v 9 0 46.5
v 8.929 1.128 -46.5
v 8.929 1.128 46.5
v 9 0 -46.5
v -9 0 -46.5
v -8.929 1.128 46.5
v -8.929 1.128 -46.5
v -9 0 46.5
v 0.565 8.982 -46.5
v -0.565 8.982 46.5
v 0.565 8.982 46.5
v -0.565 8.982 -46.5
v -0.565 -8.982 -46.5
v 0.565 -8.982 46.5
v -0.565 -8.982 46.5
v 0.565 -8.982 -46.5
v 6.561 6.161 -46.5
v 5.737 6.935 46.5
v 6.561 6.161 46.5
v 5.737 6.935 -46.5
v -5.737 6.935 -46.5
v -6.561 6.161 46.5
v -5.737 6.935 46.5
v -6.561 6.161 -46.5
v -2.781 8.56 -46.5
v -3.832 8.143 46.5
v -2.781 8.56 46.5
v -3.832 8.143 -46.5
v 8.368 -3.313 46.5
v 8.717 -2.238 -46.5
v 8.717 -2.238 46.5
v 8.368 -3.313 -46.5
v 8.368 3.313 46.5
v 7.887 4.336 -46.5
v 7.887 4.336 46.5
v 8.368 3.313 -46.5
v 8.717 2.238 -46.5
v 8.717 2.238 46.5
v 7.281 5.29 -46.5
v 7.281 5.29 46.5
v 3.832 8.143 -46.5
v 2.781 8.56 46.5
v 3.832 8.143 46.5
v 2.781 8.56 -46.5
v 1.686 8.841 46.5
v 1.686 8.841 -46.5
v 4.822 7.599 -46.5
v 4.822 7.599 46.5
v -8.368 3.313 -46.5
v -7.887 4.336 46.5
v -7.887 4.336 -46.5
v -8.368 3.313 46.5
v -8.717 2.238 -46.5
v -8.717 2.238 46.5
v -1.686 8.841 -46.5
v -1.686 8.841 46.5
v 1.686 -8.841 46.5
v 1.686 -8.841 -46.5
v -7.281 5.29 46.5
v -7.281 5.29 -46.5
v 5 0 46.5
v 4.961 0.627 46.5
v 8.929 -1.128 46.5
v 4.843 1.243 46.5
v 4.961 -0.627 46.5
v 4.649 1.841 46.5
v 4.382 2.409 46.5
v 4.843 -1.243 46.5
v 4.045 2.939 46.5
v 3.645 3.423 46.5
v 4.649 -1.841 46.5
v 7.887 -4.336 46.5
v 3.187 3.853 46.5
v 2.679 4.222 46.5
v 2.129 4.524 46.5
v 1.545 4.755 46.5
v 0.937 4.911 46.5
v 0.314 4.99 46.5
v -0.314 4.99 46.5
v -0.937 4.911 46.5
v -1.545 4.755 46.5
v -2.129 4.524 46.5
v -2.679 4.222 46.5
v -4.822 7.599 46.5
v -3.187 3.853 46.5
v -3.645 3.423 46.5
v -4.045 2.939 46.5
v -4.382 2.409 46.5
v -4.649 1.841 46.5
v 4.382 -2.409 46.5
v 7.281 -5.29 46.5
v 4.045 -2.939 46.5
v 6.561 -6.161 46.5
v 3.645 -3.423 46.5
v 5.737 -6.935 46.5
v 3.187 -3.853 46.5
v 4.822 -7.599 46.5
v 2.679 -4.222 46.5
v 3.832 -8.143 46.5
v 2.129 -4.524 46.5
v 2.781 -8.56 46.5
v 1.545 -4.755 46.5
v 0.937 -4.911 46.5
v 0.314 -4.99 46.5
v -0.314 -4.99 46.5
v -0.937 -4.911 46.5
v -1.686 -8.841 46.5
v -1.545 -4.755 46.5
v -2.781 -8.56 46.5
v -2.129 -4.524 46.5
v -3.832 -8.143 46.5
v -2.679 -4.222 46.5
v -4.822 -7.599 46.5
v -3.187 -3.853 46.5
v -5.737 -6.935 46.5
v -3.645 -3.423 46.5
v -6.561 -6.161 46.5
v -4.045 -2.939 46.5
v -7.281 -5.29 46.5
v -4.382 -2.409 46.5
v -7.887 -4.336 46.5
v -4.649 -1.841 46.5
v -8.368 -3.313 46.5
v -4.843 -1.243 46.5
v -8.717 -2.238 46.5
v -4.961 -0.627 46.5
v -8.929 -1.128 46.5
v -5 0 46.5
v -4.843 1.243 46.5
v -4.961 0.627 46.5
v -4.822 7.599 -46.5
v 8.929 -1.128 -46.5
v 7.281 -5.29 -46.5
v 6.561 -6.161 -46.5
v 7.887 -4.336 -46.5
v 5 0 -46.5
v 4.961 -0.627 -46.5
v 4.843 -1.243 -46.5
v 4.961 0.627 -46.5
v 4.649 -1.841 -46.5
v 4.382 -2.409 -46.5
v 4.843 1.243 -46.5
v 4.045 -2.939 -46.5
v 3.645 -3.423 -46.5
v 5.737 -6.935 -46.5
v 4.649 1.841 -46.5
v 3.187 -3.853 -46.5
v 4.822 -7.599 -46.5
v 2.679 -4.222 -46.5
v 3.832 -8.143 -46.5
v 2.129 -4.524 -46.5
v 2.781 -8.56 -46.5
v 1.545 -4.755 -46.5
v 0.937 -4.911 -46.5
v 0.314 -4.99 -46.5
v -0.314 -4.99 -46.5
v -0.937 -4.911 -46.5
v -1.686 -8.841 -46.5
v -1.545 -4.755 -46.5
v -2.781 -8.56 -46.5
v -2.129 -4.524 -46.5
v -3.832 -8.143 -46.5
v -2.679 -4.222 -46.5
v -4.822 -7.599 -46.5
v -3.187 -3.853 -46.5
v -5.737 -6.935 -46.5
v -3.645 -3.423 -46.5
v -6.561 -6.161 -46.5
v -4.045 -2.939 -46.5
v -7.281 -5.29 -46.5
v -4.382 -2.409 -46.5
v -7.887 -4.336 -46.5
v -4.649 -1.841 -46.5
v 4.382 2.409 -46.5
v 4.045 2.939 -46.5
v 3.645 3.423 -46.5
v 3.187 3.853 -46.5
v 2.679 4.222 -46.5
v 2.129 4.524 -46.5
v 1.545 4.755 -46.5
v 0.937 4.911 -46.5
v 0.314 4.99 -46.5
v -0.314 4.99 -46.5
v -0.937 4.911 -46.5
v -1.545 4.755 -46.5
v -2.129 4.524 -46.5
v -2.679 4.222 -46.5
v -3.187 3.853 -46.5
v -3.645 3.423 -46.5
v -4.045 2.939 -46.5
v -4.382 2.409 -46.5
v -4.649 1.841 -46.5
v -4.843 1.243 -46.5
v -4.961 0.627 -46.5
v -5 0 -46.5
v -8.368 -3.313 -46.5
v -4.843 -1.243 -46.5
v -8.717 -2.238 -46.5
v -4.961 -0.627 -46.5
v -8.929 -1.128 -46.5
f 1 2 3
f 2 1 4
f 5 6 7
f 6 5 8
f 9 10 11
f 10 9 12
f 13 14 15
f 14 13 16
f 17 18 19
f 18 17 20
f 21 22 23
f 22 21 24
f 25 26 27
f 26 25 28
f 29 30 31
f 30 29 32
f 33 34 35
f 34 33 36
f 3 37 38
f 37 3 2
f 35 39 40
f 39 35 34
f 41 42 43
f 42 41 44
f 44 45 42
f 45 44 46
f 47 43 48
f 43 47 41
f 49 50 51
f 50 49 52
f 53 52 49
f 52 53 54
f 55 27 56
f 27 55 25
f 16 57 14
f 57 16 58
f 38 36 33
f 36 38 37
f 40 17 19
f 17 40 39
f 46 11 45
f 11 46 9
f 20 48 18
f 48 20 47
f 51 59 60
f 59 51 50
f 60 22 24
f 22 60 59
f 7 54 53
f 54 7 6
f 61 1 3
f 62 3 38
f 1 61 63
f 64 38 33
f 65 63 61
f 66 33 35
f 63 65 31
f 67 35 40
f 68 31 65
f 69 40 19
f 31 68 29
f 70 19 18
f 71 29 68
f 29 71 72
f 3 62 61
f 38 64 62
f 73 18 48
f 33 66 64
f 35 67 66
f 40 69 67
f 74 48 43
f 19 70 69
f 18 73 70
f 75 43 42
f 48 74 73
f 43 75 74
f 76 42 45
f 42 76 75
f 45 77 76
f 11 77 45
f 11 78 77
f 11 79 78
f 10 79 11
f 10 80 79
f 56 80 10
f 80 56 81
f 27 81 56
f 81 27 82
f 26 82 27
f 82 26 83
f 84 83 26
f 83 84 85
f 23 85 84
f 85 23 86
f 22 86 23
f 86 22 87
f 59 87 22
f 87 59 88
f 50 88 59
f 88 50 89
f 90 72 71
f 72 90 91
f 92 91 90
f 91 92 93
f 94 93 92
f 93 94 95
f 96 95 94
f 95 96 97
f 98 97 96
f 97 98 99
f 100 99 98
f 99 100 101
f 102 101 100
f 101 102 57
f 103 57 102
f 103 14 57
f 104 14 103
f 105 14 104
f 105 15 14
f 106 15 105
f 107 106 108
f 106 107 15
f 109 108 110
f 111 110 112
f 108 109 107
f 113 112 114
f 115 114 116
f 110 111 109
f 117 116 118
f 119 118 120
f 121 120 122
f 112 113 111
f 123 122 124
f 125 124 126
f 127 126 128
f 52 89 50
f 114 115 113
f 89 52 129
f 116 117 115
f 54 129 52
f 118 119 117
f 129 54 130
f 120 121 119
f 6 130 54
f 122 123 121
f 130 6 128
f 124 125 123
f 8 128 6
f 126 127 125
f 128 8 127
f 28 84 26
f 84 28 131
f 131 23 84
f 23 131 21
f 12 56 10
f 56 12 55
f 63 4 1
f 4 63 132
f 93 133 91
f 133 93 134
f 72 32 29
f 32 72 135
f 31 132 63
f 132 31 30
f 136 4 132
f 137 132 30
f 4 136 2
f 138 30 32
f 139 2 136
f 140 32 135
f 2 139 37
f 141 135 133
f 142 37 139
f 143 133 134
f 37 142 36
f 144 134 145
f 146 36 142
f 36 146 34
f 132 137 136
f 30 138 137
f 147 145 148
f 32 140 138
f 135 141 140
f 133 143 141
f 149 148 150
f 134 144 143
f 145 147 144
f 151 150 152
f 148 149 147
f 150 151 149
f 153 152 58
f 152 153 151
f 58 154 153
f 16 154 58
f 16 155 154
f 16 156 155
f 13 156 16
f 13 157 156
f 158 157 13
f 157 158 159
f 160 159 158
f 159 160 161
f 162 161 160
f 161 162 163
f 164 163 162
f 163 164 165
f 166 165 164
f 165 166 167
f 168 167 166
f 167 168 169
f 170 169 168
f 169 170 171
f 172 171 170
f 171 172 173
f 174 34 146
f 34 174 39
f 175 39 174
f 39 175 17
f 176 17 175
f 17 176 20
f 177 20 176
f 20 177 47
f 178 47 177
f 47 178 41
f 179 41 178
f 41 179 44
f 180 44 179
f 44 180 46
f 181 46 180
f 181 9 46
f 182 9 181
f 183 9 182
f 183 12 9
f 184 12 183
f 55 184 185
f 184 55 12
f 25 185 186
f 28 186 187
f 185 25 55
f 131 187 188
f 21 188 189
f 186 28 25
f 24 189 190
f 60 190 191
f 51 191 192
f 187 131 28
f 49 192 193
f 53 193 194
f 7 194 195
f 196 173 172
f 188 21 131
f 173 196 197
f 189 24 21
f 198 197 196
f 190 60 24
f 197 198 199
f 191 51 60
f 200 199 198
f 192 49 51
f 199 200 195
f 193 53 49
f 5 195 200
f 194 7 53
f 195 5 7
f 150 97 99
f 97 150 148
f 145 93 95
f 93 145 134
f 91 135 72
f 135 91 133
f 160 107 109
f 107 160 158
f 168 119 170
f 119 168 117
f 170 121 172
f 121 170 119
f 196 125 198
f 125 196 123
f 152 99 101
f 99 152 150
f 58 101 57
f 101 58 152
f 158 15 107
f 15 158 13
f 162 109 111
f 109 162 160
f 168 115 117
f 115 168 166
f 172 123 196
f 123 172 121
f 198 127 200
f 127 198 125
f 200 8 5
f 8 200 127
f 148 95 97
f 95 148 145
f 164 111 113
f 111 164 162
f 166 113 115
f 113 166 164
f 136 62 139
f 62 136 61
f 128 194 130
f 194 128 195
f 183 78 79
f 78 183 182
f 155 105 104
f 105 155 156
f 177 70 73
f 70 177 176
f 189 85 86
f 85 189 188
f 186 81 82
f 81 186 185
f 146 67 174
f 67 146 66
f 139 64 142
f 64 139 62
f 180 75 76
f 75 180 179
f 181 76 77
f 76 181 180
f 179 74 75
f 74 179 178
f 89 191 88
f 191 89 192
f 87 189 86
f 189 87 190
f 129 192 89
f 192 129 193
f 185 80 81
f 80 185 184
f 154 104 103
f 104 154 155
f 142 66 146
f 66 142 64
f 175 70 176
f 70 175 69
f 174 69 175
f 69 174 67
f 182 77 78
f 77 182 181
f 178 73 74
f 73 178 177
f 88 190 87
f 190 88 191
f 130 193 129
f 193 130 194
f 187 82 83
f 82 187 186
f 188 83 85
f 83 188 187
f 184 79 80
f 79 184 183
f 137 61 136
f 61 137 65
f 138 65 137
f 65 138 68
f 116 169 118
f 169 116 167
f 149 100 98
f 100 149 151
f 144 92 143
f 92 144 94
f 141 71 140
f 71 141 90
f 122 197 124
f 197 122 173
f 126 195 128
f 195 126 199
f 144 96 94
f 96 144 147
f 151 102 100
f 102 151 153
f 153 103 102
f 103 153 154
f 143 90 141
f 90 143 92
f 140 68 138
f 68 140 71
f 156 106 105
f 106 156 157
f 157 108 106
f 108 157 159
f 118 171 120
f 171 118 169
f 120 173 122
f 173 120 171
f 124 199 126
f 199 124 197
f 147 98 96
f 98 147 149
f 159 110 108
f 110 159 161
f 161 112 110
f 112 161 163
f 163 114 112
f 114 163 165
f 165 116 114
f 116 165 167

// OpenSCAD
$fn = 50;


difference() {
	union() {
		translate(v = [0, 0, -46.5000000000]) {
			cylinder(h = 93, r = 9.0000000000);
		}
	}
	union() {
		translate(v = [0, 0, -100.0000000000]) {
			cylinder(h = 200, r = 5.0000000000);
		}
	}
}
